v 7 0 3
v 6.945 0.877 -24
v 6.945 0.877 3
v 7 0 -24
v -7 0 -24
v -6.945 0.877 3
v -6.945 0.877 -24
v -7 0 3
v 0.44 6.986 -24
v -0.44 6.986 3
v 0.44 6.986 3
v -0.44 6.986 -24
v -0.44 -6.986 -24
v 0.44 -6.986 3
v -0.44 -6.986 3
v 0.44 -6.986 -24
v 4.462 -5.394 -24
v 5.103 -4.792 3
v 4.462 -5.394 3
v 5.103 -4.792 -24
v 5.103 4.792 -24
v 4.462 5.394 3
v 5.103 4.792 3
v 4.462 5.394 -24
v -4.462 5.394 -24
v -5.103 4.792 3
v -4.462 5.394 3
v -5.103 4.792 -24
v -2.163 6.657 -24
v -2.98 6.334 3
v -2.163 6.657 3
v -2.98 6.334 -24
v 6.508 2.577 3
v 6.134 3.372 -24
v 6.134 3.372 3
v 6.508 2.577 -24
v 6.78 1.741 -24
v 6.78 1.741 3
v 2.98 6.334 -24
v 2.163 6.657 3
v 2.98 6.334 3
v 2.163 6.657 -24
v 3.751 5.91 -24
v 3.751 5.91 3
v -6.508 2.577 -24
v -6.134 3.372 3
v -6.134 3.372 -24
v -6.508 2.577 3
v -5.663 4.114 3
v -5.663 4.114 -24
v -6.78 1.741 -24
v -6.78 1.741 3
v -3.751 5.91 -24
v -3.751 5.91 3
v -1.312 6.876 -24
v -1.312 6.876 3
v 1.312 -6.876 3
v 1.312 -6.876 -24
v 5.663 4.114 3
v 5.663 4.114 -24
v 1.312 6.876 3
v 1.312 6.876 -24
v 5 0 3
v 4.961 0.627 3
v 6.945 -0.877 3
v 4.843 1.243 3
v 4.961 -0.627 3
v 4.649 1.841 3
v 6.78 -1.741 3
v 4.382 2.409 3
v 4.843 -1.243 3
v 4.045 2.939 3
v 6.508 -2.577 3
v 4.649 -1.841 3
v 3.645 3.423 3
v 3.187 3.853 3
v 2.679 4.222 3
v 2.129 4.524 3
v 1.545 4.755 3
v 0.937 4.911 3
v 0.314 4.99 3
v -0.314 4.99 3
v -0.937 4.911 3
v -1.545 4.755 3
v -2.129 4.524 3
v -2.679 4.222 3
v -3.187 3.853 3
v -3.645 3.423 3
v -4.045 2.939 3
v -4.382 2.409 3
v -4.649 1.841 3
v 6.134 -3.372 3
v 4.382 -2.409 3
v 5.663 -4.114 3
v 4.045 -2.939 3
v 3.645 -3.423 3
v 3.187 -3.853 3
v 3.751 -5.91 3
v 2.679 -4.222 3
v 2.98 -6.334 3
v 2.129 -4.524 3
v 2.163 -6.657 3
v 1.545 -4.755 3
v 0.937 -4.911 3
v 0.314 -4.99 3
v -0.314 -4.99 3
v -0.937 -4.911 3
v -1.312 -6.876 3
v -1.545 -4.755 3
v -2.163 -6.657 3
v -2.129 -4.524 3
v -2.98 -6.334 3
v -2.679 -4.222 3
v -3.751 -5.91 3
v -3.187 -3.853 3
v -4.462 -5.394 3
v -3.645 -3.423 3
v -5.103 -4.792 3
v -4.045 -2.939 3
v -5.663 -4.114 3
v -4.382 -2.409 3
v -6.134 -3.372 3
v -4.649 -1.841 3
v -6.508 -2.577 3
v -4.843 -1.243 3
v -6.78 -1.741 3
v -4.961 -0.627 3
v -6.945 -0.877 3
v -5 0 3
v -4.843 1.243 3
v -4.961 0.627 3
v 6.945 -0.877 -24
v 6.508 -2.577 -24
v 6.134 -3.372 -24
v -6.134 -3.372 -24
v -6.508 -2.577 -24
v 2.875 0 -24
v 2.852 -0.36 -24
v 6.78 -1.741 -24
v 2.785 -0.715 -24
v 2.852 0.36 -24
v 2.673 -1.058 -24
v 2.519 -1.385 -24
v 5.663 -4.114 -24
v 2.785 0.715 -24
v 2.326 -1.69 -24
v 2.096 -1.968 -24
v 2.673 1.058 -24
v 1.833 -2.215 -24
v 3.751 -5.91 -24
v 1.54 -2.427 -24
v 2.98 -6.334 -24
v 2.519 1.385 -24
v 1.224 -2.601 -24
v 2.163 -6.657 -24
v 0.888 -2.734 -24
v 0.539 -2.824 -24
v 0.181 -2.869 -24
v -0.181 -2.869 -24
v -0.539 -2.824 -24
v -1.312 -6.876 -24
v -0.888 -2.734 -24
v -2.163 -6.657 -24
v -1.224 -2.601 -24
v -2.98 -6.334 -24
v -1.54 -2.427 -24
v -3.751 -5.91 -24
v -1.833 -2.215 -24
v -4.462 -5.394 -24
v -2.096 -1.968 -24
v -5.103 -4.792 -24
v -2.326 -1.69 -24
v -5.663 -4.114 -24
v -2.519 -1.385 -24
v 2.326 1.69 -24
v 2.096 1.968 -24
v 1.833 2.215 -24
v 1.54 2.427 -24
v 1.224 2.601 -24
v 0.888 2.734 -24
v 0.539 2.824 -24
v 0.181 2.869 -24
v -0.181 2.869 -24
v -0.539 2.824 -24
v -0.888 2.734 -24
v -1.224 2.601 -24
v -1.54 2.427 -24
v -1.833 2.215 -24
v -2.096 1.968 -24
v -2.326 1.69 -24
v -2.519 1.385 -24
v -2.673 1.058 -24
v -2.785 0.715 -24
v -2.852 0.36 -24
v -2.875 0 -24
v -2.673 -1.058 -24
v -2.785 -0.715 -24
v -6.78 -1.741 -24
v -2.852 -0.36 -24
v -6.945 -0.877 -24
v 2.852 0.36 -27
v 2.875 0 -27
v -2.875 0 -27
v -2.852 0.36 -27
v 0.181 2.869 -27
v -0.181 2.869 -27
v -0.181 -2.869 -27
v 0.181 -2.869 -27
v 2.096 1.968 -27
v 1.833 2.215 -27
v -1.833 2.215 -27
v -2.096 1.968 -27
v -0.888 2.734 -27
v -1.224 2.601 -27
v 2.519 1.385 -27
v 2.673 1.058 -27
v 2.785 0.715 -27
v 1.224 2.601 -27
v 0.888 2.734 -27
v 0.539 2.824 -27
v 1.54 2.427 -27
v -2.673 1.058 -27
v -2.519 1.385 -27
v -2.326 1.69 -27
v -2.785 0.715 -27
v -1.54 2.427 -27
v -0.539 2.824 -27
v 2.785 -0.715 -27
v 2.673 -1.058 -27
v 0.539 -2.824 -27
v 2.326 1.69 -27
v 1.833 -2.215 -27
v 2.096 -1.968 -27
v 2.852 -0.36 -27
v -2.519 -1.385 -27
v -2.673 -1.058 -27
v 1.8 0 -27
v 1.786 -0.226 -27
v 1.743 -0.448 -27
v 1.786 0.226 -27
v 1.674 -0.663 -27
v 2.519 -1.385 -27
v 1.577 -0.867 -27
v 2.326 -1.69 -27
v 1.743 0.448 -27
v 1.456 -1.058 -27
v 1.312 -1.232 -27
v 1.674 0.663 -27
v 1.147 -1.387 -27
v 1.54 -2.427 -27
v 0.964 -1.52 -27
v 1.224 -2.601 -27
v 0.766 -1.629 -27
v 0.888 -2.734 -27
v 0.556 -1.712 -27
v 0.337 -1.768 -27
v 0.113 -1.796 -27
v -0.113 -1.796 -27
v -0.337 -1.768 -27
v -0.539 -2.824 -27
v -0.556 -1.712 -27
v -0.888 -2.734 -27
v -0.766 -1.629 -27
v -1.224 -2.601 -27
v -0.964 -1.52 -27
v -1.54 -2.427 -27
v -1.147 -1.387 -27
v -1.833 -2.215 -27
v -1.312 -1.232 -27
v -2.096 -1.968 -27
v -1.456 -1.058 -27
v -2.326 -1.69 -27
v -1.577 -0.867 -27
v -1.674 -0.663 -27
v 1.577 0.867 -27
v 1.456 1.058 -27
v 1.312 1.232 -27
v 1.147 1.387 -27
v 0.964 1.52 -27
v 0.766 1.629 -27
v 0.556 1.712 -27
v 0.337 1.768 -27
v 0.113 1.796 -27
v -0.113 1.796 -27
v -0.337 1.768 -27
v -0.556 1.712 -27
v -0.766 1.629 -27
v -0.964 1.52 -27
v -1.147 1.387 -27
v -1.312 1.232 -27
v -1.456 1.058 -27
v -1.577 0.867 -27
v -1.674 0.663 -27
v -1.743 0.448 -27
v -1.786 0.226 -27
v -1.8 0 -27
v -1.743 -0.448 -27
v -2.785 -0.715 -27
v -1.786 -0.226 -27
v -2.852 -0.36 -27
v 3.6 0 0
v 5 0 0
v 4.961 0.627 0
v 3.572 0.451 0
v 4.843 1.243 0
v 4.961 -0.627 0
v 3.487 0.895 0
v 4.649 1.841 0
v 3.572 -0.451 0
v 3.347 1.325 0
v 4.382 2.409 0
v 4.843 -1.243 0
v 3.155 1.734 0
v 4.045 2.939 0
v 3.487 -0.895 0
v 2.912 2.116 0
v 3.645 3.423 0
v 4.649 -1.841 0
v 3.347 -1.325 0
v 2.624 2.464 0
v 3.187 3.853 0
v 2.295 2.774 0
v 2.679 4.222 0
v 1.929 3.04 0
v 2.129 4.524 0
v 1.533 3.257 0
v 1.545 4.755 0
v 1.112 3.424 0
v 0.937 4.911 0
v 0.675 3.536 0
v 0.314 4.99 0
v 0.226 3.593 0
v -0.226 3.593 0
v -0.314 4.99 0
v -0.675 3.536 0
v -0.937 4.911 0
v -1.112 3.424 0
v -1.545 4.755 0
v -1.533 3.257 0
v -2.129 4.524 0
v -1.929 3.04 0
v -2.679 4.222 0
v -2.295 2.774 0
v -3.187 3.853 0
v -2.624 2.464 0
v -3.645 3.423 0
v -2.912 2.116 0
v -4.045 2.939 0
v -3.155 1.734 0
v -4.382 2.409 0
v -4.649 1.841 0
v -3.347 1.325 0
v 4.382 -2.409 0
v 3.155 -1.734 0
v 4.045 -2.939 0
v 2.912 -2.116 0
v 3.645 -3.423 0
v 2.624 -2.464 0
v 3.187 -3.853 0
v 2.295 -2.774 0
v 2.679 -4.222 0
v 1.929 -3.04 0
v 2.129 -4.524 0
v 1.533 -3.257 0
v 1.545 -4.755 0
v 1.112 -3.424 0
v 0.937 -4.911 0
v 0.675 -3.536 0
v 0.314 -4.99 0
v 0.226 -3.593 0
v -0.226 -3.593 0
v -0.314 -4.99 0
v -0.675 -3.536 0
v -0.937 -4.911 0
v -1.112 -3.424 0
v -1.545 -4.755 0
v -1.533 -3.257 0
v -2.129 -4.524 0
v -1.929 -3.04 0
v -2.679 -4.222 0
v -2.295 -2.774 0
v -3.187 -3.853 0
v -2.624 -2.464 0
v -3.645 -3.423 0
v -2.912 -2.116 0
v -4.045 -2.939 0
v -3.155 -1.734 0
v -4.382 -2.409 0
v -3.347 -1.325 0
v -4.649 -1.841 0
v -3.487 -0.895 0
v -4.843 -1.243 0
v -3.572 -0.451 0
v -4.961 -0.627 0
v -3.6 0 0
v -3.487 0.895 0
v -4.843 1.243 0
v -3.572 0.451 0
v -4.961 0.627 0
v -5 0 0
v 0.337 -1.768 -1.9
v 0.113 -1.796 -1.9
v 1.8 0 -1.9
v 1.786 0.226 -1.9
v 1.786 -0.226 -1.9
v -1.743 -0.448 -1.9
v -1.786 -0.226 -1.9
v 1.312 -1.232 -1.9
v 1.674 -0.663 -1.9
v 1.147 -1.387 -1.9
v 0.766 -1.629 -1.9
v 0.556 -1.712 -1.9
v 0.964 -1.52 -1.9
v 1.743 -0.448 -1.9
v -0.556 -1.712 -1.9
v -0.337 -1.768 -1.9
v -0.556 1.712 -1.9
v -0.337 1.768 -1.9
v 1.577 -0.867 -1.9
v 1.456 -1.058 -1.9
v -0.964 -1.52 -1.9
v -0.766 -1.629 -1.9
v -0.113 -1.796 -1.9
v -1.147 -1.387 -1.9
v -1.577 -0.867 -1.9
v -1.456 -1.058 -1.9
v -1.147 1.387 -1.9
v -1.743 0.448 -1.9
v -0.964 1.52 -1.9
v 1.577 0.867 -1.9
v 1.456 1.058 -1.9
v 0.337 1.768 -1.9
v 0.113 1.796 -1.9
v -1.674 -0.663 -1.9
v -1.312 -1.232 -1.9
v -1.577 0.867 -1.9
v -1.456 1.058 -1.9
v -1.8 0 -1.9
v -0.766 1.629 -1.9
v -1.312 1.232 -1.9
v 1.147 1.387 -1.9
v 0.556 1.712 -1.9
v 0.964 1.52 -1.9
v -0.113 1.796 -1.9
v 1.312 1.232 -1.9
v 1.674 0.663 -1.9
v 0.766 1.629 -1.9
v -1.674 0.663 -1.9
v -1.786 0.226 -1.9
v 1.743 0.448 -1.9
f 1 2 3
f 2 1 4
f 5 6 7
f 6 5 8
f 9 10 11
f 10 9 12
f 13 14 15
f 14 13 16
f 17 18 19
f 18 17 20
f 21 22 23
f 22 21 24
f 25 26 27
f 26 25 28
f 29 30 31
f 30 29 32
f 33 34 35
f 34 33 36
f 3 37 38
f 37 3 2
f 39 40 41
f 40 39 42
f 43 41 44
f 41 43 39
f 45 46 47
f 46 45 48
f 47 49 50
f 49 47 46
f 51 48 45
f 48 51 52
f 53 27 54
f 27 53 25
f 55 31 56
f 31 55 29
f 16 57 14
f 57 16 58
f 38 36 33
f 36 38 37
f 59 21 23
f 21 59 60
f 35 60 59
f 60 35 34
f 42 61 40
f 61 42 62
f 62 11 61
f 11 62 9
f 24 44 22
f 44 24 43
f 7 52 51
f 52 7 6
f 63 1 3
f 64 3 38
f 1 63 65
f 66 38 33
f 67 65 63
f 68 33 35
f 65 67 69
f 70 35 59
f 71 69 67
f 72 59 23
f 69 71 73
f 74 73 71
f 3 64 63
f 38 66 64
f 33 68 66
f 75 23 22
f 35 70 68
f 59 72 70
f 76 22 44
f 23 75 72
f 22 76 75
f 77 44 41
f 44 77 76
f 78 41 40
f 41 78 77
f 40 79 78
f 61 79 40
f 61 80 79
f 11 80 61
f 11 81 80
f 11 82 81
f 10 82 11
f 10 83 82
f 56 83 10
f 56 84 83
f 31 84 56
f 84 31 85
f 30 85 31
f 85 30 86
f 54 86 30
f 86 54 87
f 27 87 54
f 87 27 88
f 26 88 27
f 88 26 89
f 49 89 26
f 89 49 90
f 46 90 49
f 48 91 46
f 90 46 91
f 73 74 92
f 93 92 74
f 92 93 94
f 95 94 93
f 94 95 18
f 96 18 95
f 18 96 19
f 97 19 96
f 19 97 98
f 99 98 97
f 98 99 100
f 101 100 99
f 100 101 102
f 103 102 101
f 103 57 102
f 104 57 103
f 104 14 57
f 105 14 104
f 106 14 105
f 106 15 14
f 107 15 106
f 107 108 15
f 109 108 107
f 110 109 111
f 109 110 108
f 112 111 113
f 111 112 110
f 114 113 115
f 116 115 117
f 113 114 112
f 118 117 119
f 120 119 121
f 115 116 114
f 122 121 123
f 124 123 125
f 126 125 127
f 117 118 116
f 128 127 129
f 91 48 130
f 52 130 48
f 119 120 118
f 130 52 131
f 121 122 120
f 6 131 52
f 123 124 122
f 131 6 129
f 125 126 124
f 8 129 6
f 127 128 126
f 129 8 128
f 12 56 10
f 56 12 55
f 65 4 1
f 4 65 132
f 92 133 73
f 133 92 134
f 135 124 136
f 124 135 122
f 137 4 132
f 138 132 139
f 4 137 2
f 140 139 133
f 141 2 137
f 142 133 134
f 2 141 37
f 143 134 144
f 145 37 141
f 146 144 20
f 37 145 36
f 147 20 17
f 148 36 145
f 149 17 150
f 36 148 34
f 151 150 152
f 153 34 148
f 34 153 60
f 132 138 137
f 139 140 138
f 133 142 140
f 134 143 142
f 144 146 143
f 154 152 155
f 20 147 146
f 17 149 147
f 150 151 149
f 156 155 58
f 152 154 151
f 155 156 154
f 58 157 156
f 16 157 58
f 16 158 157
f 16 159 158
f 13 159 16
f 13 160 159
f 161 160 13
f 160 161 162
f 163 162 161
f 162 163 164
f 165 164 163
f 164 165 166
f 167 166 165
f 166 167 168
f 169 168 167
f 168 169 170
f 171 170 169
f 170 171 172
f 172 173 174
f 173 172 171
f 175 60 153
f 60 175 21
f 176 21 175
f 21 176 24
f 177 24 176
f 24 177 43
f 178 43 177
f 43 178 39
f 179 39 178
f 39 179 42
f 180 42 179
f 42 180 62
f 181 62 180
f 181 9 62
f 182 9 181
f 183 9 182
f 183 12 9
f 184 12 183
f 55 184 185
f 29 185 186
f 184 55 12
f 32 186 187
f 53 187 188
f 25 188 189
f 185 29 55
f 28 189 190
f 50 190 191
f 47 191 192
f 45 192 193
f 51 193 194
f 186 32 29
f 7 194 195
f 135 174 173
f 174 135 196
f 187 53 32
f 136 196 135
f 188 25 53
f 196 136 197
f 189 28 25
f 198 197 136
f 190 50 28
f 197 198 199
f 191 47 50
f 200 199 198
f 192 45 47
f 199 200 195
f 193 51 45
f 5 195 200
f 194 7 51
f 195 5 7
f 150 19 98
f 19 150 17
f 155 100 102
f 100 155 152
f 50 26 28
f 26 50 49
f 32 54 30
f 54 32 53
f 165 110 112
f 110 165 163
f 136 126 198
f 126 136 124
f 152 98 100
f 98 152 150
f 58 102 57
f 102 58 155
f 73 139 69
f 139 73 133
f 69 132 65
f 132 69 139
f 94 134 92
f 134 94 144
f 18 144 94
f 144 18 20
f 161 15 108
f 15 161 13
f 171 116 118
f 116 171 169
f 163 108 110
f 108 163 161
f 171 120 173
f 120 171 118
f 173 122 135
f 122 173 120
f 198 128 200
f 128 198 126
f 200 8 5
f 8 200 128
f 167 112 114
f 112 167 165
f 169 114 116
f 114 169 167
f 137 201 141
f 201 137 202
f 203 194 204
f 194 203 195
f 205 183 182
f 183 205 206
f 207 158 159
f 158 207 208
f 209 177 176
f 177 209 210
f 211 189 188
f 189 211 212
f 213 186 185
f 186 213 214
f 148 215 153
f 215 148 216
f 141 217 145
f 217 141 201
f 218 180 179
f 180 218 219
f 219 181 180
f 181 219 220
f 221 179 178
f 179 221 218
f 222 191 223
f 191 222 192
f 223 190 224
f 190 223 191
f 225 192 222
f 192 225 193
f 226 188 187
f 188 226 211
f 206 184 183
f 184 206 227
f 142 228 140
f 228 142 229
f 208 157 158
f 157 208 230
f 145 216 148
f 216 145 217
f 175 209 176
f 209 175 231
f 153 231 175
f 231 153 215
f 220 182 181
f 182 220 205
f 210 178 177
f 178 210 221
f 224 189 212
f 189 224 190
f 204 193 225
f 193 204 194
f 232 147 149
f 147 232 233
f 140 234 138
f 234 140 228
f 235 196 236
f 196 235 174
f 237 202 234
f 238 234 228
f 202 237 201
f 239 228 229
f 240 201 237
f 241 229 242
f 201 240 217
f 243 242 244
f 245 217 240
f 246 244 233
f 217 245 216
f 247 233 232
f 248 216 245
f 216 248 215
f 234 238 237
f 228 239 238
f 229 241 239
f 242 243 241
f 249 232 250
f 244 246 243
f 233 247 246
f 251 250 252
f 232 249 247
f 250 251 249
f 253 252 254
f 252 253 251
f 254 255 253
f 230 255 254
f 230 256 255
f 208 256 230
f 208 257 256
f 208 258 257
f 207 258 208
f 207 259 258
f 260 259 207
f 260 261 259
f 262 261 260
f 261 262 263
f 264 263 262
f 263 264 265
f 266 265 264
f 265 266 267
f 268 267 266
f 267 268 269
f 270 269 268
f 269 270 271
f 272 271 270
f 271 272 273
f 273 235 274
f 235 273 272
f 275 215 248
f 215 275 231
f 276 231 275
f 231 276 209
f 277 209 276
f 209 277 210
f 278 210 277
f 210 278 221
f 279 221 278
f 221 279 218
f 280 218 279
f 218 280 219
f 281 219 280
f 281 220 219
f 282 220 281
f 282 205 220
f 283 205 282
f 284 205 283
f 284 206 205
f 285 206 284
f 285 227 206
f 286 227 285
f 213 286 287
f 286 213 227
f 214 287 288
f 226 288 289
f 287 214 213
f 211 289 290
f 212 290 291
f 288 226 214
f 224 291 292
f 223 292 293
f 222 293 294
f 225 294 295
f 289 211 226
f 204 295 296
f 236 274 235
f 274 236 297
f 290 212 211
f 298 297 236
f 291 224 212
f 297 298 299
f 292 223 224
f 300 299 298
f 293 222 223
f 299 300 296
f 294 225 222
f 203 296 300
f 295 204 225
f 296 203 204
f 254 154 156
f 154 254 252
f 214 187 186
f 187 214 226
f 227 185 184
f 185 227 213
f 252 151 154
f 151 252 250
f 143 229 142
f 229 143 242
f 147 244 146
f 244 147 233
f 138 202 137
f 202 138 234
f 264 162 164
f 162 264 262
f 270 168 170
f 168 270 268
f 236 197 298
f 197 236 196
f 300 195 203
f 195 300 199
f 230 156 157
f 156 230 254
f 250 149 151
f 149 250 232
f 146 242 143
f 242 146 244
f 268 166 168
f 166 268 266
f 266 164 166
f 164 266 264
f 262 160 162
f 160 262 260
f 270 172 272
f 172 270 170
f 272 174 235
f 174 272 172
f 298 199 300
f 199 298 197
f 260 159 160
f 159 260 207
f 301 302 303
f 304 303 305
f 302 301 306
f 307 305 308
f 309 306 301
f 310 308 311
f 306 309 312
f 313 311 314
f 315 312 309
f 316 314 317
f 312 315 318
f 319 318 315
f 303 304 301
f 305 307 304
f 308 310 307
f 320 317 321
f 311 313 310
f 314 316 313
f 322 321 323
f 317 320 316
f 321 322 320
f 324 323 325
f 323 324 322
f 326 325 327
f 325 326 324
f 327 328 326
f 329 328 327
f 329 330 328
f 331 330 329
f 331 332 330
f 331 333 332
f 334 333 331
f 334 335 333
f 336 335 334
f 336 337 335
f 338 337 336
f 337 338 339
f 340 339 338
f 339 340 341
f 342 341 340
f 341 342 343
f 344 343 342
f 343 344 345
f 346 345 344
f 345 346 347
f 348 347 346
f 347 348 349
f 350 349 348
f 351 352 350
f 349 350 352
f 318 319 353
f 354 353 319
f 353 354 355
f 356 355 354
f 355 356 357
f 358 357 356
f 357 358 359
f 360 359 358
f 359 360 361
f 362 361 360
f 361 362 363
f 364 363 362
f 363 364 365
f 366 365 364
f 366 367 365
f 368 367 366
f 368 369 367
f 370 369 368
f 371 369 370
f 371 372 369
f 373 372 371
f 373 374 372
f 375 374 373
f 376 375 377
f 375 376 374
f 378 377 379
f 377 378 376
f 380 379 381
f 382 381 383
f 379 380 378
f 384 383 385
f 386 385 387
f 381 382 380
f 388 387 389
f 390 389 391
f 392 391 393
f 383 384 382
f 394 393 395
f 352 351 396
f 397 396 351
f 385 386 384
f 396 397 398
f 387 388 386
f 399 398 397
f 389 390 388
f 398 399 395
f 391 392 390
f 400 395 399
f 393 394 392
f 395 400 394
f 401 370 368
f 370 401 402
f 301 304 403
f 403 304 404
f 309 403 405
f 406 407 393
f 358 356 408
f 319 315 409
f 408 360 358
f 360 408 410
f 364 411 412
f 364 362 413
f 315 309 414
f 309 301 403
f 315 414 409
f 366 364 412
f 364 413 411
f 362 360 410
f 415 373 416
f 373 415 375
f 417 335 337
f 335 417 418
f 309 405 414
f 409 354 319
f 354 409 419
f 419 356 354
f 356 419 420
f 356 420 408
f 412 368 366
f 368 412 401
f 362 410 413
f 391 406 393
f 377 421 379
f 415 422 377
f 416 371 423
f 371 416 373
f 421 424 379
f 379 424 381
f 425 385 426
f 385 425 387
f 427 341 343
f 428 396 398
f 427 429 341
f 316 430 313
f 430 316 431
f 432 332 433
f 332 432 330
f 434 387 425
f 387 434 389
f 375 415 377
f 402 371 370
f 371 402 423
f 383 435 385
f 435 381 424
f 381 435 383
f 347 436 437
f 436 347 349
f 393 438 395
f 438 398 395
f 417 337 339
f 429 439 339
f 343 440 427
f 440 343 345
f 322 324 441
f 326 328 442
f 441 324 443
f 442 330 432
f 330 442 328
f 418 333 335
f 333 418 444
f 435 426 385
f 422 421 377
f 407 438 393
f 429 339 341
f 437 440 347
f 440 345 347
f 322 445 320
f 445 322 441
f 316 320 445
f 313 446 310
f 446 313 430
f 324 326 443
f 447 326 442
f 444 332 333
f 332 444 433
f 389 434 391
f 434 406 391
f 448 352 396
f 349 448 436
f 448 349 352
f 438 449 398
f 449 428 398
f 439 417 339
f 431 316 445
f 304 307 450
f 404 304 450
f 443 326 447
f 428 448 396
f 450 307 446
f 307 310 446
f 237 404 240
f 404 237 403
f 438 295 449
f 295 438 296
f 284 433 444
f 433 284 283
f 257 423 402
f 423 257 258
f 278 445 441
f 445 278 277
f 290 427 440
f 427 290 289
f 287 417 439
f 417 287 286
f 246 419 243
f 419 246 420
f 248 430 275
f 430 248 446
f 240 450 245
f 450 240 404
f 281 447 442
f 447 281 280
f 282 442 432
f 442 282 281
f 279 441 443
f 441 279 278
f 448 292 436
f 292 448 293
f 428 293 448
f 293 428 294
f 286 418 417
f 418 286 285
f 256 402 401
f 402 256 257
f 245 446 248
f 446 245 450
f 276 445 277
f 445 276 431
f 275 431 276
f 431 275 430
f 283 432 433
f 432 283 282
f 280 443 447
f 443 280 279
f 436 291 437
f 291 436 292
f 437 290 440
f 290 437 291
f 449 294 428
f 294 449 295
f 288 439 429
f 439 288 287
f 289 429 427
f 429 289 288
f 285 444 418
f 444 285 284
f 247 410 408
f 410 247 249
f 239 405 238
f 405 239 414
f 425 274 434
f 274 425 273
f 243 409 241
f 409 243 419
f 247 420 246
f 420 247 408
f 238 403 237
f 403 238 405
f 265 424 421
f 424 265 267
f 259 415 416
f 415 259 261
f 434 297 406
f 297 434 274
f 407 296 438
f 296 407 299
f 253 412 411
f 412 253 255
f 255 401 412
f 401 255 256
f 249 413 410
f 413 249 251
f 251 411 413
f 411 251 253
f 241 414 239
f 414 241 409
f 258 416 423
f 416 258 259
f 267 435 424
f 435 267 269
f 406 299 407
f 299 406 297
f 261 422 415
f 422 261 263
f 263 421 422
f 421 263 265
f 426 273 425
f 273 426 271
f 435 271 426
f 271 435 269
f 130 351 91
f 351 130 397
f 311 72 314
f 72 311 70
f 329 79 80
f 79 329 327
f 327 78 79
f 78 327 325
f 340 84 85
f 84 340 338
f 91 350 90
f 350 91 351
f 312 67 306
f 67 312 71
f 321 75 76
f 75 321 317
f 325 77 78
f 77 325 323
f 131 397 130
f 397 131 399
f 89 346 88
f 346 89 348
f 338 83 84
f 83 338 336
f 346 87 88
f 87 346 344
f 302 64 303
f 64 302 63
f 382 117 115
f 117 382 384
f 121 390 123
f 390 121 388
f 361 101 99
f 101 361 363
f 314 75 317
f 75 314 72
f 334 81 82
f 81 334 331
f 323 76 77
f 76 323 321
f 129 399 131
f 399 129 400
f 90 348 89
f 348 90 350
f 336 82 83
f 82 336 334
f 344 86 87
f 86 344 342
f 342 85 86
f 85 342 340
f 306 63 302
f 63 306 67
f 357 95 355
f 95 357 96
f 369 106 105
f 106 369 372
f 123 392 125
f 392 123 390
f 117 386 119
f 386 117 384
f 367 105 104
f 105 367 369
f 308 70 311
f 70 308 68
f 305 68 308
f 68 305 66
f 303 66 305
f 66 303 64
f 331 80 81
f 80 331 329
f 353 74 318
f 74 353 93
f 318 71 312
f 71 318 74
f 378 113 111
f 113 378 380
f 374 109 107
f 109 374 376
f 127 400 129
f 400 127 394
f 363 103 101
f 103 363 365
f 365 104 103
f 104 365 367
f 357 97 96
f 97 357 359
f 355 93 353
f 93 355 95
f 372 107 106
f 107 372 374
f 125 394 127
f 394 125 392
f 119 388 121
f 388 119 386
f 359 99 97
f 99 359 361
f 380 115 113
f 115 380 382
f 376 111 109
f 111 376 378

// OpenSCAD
$fn = 50;

difference() {
	union() {
		translate(v = [0, 0, -24.0]) {
			cylinder(h = 27, r = 7.0);
		}
		#translate(v = [0, 0, -27.0]) {
			cylinder(h = 27, r = 2.875);
		}
	}
	union() {
		translate(v = [0, 0, 0]) {
			rotate(a = [0, 0, 0]) {
				difference() {
					union() {
						translate(v = [0, 0, -27.0]) {
							cylinder(h = 27, r = 1.5);
						}
						translate(v = [0, 0, -1.9]) {
							cylinder(h = 1.9, r1 = 1.8, r2 = 3.6);
						}
						translate(v = [0, 0, -27.0]) {
							cylinder(h = 27, r = 1.8);
						}
						translate(v = [0, 0, -27.0]) {
							cylinder(h = 27, r = 1.5);
						}
					}
					union();
				}
			}
		}
		#cylinder(h = 3, r = 5.0);
	}
}
